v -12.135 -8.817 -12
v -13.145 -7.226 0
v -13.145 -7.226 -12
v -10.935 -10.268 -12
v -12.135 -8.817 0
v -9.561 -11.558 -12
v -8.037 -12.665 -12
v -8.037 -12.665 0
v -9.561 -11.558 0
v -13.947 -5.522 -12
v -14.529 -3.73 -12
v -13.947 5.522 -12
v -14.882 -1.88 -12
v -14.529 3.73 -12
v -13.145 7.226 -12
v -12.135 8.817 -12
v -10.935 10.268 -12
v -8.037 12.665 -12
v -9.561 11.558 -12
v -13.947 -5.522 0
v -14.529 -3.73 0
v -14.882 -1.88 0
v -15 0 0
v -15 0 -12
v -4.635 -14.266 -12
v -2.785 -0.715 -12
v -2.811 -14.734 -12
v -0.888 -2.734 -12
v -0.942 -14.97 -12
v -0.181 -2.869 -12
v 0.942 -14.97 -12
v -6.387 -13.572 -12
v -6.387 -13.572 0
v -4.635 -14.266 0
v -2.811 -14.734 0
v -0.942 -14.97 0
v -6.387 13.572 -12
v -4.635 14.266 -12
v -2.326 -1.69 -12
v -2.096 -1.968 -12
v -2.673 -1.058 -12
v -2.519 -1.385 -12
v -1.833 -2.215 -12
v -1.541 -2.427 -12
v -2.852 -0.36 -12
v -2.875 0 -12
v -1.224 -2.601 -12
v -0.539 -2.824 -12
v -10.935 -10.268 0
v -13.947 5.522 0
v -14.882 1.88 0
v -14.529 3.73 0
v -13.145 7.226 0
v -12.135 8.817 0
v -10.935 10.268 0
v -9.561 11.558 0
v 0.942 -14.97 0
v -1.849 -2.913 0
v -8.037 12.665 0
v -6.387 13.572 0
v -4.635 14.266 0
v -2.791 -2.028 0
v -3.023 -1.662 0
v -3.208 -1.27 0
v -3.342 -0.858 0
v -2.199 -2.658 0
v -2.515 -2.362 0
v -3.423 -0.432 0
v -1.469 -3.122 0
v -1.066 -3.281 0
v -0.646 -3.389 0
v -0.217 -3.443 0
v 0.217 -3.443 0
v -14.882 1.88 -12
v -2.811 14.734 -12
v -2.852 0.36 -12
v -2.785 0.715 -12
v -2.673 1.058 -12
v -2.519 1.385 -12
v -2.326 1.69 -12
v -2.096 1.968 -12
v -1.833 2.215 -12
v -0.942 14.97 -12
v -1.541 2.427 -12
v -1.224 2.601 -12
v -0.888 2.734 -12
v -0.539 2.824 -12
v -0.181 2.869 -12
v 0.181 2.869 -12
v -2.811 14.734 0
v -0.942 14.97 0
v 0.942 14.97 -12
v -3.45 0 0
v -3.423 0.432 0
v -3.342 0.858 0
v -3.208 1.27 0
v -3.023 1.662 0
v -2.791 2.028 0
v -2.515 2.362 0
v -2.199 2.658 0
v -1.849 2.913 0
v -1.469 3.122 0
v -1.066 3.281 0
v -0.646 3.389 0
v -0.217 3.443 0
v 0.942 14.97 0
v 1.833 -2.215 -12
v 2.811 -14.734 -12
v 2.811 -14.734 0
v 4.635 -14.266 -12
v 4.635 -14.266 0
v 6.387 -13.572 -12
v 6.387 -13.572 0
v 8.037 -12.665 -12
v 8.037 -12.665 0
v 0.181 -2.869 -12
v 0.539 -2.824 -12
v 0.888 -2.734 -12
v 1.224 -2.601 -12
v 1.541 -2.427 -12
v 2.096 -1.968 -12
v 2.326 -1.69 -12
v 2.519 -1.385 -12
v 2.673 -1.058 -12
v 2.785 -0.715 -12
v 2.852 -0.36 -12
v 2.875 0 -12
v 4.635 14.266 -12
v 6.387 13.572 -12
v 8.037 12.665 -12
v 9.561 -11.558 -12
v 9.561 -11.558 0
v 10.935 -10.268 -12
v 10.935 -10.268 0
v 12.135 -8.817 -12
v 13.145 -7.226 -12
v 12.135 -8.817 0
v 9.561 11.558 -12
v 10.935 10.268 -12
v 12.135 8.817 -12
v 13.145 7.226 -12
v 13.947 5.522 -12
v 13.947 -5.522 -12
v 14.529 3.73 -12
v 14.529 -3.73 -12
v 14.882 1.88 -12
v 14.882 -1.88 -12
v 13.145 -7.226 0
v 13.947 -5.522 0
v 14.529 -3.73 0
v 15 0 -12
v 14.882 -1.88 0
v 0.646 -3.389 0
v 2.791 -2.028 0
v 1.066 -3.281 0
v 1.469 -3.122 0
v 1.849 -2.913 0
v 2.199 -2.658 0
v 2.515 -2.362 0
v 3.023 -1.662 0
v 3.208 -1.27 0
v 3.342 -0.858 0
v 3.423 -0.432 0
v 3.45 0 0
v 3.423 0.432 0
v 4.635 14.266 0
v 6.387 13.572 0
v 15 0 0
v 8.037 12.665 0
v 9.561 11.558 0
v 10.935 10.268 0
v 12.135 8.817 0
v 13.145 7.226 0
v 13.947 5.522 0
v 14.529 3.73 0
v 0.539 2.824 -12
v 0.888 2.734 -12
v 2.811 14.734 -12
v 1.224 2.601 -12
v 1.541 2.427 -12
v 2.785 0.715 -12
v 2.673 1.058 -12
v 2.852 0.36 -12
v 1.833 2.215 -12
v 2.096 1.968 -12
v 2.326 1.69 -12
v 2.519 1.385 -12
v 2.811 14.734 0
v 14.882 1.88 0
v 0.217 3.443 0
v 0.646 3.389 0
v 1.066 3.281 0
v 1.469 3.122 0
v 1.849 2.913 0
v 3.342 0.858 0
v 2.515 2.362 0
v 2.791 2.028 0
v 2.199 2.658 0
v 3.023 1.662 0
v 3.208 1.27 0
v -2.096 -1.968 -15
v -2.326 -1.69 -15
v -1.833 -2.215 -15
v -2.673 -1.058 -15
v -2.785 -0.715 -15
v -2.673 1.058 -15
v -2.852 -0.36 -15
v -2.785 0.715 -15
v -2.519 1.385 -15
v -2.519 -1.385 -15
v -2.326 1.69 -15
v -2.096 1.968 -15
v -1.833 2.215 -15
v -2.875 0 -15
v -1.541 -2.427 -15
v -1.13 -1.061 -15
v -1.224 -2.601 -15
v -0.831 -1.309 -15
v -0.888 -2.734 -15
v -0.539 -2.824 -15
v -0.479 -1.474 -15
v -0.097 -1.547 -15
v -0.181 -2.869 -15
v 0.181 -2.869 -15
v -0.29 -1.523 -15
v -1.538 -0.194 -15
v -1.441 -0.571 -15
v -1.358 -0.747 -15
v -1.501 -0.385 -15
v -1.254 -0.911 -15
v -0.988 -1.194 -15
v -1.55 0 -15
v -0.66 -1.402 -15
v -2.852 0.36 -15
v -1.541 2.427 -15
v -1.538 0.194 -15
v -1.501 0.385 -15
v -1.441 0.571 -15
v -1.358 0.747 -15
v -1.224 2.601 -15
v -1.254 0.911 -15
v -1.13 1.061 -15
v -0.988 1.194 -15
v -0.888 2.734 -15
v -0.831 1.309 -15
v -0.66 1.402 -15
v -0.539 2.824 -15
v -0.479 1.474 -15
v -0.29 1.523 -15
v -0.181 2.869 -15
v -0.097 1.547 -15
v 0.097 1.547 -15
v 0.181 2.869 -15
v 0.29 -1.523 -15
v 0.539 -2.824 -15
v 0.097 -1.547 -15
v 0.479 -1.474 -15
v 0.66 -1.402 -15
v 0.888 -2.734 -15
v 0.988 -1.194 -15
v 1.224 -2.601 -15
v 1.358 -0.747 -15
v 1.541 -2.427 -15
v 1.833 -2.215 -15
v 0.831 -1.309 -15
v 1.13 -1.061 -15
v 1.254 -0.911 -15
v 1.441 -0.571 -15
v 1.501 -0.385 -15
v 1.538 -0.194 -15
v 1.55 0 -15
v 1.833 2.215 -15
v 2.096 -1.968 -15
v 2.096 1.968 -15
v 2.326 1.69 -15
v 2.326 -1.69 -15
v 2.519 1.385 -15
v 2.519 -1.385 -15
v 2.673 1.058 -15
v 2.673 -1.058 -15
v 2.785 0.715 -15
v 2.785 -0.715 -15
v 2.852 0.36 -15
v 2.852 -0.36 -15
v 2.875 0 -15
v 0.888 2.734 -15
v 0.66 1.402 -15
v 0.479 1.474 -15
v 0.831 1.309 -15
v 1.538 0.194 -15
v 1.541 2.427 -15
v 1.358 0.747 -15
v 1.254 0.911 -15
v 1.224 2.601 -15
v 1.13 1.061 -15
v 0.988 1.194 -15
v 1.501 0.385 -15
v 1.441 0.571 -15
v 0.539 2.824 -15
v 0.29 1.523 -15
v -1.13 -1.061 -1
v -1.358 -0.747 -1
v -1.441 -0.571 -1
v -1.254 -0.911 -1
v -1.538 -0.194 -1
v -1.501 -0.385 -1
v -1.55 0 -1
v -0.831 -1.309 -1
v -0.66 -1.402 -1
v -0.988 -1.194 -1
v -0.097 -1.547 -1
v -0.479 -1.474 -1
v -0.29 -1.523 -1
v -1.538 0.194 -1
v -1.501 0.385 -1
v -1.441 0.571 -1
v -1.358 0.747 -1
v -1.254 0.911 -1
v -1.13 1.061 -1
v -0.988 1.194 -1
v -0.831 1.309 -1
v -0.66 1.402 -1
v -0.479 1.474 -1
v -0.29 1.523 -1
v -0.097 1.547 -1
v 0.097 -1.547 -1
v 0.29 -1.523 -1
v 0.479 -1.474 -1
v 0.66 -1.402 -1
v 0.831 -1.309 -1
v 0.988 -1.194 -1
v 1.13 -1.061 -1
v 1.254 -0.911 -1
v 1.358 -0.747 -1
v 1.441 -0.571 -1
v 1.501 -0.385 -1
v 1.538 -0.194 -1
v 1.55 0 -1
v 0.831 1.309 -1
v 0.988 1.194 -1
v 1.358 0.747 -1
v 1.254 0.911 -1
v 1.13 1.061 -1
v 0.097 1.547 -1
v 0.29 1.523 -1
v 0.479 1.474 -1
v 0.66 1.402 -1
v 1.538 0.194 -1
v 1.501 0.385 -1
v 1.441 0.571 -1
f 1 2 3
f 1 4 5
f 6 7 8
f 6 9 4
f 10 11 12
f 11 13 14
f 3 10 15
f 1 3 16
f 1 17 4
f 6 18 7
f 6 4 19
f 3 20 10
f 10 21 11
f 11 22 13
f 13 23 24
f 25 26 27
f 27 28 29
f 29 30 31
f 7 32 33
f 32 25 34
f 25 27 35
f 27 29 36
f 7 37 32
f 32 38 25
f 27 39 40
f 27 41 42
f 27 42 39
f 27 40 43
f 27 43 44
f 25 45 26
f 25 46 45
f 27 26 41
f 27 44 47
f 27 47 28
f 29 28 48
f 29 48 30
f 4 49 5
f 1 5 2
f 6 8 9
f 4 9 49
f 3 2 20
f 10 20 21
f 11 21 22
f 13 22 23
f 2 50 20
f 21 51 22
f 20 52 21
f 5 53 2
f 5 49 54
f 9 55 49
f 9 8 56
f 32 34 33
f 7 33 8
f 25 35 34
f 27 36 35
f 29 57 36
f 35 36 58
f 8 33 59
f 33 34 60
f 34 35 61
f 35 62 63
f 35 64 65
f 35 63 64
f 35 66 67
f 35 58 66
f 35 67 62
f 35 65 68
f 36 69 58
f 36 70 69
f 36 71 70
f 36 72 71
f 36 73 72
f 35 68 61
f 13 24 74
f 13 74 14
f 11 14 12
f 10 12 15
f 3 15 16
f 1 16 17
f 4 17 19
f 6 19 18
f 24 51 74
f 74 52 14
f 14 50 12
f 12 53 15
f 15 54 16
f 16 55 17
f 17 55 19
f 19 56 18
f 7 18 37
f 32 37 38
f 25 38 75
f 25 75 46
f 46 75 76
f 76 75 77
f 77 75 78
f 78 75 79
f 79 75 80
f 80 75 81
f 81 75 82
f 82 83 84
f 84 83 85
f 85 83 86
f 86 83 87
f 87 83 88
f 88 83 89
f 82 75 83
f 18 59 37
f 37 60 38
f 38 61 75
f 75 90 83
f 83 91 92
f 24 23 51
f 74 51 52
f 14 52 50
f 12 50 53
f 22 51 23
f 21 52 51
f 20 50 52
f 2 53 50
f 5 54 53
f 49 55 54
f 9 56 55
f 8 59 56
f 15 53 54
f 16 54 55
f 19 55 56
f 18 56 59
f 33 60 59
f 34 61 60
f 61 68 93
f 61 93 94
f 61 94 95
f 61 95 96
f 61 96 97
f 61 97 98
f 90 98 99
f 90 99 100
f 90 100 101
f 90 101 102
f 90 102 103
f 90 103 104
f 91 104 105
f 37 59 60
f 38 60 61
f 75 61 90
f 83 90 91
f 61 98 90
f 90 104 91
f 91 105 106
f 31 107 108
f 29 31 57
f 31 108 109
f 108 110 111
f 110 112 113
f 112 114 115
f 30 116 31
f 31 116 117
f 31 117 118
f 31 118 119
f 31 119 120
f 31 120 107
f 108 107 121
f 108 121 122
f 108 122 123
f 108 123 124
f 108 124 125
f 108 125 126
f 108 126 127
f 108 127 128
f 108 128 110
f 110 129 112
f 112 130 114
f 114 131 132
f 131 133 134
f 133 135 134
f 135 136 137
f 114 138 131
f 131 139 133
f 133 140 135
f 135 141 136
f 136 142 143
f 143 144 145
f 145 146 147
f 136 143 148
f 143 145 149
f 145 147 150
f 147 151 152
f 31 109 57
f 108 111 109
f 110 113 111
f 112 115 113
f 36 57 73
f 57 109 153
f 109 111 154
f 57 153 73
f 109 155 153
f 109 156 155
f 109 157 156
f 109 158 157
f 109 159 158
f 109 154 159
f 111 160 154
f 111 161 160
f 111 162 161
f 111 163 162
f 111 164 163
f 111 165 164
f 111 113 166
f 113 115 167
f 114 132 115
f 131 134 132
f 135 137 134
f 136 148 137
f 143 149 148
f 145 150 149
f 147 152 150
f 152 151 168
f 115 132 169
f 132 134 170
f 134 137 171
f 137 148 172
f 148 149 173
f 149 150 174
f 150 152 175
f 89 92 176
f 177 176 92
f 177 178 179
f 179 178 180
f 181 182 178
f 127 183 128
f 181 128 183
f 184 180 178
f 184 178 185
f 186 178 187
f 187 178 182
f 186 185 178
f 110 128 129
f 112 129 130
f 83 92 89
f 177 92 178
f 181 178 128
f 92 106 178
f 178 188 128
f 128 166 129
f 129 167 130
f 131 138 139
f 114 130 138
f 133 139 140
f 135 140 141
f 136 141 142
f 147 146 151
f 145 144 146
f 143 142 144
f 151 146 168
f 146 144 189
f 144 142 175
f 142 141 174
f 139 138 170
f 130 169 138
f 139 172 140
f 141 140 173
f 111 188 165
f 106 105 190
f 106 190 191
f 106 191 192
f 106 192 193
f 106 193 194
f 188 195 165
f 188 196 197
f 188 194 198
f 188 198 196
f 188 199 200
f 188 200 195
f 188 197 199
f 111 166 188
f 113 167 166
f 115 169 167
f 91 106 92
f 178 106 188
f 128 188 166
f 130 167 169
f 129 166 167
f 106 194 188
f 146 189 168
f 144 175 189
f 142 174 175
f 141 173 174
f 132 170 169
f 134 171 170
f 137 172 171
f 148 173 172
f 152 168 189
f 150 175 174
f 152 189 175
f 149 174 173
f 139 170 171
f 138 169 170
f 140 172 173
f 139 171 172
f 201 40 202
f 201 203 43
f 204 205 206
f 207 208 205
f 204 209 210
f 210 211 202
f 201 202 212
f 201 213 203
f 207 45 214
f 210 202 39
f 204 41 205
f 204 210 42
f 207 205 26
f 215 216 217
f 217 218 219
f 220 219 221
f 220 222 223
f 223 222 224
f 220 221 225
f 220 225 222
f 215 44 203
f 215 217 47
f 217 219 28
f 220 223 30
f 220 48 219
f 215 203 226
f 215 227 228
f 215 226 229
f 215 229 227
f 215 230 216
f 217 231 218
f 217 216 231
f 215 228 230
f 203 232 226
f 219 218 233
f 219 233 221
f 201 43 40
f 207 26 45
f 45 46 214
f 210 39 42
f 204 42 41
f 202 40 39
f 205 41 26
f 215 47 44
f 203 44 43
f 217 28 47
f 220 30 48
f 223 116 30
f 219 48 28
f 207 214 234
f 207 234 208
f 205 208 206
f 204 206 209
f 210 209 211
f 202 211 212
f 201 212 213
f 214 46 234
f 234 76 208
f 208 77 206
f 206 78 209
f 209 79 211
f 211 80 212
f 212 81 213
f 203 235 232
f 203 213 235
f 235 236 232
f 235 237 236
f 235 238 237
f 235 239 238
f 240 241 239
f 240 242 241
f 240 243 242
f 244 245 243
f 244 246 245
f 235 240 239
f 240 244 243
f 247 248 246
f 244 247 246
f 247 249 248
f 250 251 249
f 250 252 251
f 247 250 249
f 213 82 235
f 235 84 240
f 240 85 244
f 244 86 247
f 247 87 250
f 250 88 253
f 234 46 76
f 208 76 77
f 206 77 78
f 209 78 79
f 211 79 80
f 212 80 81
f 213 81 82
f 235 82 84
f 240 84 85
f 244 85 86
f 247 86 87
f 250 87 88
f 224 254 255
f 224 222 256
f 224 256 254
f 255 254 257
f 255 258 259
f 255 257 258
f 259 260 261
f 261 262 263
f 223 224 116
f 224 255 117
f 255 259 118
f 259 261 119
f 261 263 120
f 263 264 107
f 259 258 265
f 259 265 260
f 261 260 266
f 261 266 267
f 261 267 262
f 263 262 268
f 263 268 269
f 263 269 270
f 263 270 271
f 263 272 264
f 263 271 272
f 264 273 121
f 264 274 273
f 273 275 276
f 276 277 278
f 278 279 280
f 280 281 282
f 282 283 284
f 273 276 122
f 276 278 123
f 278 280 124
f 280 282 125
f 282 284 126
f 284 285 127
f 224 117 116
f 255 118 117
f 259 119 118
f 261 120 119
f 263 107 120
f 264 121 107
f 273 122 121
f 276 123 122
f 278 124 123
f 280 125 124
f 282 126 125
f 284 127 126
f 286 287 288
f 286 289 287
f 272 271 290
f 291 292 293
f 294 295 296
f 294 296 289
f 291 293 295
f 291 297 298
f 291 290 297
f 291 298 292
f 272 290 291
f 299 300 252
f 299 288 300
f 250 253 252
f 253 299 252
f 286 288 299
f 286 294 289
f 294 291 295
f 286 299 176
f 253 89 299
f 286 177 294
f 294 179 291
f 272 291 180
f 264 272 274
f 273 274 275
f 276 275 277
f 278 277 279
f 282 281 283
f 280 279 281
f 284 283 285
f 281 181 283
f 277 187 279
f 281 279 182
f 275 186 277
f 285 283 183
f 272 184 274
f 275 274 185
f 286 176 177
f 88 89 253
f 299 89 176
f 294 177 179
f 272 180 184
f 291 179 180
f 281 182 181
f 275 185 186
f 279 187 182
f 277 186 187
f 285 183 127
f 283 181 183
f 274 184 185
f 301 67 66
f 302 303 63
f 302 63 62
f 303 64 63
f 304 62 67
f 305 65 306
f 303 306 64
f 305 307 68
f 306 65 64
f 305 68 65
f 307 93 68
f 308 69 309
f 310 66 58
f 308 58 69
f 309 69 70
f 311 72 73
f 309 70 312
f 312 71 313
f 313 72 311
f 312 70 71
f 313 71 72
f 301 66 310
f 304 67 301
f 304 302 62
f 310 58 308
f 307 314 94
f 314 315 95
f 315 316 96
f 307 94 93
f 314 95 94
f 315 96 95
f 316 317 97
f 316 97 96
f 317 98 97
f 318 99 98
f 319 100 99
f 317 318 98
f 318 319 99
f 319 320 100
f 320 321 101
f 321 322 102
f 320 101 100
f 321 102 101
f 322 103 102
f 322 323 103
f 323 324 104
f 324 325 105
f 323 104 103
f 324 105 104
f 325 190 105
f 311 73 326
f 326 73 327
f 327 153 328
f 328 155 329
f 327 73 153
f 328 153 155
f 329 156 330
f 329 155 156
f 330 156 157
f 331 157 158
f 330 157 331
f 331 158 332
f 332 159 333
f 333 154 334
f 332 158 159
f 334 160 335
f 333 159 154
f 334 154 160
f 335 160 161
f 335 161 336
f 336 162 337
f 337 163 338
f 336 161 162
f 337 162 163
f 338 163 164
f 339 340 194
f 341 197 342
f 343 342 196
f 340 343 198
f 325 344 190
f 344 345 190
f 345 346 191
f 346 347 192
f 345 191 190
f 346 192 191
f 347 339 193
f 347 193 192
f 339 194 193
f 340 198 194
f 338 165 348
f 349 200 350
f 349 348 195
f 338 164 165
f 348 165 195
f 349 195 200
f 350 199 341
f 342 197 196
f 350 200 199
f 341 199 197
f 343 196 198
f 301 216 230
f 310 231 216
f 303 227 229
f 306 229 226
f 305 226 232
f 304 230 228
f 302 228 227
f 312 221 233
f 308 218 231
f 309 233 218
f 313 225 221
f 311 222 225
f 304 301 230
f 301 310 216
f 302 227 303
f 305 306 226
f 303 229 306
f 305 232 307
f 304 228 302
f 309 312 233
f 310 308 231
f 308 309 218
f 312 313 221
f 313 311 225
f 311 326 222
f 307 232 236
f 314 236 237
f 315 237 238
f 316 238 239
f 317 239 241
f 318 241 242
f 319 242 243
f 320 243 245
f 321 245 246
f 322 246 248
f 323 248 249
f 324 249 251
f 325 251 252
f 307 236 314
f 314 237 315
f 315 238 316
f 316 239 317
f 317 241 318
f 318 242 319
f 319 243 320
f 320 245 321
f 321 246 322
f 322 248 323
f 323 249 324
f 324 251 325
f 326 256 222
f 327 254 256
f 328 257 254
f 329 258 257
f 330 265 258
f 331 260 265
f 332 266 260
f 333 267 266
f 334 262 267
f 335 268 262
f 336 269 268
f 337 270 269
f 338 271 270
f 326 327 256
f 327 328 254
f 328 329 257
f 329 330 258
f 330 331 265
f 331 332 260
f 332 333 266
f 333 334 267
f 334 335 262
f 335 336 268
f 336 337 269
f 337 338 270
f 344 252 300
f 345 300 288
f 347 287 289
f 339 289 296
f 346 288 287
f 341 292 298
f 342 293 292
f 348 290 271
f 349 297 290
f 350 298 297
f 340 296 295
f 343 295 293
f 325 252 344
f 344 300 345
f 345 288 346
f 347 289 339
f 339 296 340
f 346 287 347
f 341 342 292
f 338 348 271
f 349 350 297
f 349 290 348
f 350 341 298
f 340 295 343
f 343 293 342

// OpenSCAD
$fn = 50;

difference() {
	union() {
		translate(v = [0, 0, -12.0]) {
			cylinder(h = 12, r = 15.0);
		}
		#translate(v = [0, 0, -15.0]) {
			cylinder(h = 15, r = 2.875);
		}
	}
	union() {
		translate(v = [0, 0, 0]) {
			rotate(a = [0, 0, 0]) {
				difference() {
					union() {
						translate(v = [0, 0, -15.0]) {
							cylinder(h = 15, r = 1.25);
						}
						translate(v = [0, 0, -1.0]) {
							cylinder(h = 1.0, r1 = 1.55, r2 = 3.45);
						}
						translate(v = [0, 0, -15.0]) {
							cylinder(h = 15, r = 1.55);
						}
						translate(v = [0, 0, -15.0]) {
							cylinder(h = 15, r = 1.25);
						}
					}
					union();
				}
			}
		}
	}
}
